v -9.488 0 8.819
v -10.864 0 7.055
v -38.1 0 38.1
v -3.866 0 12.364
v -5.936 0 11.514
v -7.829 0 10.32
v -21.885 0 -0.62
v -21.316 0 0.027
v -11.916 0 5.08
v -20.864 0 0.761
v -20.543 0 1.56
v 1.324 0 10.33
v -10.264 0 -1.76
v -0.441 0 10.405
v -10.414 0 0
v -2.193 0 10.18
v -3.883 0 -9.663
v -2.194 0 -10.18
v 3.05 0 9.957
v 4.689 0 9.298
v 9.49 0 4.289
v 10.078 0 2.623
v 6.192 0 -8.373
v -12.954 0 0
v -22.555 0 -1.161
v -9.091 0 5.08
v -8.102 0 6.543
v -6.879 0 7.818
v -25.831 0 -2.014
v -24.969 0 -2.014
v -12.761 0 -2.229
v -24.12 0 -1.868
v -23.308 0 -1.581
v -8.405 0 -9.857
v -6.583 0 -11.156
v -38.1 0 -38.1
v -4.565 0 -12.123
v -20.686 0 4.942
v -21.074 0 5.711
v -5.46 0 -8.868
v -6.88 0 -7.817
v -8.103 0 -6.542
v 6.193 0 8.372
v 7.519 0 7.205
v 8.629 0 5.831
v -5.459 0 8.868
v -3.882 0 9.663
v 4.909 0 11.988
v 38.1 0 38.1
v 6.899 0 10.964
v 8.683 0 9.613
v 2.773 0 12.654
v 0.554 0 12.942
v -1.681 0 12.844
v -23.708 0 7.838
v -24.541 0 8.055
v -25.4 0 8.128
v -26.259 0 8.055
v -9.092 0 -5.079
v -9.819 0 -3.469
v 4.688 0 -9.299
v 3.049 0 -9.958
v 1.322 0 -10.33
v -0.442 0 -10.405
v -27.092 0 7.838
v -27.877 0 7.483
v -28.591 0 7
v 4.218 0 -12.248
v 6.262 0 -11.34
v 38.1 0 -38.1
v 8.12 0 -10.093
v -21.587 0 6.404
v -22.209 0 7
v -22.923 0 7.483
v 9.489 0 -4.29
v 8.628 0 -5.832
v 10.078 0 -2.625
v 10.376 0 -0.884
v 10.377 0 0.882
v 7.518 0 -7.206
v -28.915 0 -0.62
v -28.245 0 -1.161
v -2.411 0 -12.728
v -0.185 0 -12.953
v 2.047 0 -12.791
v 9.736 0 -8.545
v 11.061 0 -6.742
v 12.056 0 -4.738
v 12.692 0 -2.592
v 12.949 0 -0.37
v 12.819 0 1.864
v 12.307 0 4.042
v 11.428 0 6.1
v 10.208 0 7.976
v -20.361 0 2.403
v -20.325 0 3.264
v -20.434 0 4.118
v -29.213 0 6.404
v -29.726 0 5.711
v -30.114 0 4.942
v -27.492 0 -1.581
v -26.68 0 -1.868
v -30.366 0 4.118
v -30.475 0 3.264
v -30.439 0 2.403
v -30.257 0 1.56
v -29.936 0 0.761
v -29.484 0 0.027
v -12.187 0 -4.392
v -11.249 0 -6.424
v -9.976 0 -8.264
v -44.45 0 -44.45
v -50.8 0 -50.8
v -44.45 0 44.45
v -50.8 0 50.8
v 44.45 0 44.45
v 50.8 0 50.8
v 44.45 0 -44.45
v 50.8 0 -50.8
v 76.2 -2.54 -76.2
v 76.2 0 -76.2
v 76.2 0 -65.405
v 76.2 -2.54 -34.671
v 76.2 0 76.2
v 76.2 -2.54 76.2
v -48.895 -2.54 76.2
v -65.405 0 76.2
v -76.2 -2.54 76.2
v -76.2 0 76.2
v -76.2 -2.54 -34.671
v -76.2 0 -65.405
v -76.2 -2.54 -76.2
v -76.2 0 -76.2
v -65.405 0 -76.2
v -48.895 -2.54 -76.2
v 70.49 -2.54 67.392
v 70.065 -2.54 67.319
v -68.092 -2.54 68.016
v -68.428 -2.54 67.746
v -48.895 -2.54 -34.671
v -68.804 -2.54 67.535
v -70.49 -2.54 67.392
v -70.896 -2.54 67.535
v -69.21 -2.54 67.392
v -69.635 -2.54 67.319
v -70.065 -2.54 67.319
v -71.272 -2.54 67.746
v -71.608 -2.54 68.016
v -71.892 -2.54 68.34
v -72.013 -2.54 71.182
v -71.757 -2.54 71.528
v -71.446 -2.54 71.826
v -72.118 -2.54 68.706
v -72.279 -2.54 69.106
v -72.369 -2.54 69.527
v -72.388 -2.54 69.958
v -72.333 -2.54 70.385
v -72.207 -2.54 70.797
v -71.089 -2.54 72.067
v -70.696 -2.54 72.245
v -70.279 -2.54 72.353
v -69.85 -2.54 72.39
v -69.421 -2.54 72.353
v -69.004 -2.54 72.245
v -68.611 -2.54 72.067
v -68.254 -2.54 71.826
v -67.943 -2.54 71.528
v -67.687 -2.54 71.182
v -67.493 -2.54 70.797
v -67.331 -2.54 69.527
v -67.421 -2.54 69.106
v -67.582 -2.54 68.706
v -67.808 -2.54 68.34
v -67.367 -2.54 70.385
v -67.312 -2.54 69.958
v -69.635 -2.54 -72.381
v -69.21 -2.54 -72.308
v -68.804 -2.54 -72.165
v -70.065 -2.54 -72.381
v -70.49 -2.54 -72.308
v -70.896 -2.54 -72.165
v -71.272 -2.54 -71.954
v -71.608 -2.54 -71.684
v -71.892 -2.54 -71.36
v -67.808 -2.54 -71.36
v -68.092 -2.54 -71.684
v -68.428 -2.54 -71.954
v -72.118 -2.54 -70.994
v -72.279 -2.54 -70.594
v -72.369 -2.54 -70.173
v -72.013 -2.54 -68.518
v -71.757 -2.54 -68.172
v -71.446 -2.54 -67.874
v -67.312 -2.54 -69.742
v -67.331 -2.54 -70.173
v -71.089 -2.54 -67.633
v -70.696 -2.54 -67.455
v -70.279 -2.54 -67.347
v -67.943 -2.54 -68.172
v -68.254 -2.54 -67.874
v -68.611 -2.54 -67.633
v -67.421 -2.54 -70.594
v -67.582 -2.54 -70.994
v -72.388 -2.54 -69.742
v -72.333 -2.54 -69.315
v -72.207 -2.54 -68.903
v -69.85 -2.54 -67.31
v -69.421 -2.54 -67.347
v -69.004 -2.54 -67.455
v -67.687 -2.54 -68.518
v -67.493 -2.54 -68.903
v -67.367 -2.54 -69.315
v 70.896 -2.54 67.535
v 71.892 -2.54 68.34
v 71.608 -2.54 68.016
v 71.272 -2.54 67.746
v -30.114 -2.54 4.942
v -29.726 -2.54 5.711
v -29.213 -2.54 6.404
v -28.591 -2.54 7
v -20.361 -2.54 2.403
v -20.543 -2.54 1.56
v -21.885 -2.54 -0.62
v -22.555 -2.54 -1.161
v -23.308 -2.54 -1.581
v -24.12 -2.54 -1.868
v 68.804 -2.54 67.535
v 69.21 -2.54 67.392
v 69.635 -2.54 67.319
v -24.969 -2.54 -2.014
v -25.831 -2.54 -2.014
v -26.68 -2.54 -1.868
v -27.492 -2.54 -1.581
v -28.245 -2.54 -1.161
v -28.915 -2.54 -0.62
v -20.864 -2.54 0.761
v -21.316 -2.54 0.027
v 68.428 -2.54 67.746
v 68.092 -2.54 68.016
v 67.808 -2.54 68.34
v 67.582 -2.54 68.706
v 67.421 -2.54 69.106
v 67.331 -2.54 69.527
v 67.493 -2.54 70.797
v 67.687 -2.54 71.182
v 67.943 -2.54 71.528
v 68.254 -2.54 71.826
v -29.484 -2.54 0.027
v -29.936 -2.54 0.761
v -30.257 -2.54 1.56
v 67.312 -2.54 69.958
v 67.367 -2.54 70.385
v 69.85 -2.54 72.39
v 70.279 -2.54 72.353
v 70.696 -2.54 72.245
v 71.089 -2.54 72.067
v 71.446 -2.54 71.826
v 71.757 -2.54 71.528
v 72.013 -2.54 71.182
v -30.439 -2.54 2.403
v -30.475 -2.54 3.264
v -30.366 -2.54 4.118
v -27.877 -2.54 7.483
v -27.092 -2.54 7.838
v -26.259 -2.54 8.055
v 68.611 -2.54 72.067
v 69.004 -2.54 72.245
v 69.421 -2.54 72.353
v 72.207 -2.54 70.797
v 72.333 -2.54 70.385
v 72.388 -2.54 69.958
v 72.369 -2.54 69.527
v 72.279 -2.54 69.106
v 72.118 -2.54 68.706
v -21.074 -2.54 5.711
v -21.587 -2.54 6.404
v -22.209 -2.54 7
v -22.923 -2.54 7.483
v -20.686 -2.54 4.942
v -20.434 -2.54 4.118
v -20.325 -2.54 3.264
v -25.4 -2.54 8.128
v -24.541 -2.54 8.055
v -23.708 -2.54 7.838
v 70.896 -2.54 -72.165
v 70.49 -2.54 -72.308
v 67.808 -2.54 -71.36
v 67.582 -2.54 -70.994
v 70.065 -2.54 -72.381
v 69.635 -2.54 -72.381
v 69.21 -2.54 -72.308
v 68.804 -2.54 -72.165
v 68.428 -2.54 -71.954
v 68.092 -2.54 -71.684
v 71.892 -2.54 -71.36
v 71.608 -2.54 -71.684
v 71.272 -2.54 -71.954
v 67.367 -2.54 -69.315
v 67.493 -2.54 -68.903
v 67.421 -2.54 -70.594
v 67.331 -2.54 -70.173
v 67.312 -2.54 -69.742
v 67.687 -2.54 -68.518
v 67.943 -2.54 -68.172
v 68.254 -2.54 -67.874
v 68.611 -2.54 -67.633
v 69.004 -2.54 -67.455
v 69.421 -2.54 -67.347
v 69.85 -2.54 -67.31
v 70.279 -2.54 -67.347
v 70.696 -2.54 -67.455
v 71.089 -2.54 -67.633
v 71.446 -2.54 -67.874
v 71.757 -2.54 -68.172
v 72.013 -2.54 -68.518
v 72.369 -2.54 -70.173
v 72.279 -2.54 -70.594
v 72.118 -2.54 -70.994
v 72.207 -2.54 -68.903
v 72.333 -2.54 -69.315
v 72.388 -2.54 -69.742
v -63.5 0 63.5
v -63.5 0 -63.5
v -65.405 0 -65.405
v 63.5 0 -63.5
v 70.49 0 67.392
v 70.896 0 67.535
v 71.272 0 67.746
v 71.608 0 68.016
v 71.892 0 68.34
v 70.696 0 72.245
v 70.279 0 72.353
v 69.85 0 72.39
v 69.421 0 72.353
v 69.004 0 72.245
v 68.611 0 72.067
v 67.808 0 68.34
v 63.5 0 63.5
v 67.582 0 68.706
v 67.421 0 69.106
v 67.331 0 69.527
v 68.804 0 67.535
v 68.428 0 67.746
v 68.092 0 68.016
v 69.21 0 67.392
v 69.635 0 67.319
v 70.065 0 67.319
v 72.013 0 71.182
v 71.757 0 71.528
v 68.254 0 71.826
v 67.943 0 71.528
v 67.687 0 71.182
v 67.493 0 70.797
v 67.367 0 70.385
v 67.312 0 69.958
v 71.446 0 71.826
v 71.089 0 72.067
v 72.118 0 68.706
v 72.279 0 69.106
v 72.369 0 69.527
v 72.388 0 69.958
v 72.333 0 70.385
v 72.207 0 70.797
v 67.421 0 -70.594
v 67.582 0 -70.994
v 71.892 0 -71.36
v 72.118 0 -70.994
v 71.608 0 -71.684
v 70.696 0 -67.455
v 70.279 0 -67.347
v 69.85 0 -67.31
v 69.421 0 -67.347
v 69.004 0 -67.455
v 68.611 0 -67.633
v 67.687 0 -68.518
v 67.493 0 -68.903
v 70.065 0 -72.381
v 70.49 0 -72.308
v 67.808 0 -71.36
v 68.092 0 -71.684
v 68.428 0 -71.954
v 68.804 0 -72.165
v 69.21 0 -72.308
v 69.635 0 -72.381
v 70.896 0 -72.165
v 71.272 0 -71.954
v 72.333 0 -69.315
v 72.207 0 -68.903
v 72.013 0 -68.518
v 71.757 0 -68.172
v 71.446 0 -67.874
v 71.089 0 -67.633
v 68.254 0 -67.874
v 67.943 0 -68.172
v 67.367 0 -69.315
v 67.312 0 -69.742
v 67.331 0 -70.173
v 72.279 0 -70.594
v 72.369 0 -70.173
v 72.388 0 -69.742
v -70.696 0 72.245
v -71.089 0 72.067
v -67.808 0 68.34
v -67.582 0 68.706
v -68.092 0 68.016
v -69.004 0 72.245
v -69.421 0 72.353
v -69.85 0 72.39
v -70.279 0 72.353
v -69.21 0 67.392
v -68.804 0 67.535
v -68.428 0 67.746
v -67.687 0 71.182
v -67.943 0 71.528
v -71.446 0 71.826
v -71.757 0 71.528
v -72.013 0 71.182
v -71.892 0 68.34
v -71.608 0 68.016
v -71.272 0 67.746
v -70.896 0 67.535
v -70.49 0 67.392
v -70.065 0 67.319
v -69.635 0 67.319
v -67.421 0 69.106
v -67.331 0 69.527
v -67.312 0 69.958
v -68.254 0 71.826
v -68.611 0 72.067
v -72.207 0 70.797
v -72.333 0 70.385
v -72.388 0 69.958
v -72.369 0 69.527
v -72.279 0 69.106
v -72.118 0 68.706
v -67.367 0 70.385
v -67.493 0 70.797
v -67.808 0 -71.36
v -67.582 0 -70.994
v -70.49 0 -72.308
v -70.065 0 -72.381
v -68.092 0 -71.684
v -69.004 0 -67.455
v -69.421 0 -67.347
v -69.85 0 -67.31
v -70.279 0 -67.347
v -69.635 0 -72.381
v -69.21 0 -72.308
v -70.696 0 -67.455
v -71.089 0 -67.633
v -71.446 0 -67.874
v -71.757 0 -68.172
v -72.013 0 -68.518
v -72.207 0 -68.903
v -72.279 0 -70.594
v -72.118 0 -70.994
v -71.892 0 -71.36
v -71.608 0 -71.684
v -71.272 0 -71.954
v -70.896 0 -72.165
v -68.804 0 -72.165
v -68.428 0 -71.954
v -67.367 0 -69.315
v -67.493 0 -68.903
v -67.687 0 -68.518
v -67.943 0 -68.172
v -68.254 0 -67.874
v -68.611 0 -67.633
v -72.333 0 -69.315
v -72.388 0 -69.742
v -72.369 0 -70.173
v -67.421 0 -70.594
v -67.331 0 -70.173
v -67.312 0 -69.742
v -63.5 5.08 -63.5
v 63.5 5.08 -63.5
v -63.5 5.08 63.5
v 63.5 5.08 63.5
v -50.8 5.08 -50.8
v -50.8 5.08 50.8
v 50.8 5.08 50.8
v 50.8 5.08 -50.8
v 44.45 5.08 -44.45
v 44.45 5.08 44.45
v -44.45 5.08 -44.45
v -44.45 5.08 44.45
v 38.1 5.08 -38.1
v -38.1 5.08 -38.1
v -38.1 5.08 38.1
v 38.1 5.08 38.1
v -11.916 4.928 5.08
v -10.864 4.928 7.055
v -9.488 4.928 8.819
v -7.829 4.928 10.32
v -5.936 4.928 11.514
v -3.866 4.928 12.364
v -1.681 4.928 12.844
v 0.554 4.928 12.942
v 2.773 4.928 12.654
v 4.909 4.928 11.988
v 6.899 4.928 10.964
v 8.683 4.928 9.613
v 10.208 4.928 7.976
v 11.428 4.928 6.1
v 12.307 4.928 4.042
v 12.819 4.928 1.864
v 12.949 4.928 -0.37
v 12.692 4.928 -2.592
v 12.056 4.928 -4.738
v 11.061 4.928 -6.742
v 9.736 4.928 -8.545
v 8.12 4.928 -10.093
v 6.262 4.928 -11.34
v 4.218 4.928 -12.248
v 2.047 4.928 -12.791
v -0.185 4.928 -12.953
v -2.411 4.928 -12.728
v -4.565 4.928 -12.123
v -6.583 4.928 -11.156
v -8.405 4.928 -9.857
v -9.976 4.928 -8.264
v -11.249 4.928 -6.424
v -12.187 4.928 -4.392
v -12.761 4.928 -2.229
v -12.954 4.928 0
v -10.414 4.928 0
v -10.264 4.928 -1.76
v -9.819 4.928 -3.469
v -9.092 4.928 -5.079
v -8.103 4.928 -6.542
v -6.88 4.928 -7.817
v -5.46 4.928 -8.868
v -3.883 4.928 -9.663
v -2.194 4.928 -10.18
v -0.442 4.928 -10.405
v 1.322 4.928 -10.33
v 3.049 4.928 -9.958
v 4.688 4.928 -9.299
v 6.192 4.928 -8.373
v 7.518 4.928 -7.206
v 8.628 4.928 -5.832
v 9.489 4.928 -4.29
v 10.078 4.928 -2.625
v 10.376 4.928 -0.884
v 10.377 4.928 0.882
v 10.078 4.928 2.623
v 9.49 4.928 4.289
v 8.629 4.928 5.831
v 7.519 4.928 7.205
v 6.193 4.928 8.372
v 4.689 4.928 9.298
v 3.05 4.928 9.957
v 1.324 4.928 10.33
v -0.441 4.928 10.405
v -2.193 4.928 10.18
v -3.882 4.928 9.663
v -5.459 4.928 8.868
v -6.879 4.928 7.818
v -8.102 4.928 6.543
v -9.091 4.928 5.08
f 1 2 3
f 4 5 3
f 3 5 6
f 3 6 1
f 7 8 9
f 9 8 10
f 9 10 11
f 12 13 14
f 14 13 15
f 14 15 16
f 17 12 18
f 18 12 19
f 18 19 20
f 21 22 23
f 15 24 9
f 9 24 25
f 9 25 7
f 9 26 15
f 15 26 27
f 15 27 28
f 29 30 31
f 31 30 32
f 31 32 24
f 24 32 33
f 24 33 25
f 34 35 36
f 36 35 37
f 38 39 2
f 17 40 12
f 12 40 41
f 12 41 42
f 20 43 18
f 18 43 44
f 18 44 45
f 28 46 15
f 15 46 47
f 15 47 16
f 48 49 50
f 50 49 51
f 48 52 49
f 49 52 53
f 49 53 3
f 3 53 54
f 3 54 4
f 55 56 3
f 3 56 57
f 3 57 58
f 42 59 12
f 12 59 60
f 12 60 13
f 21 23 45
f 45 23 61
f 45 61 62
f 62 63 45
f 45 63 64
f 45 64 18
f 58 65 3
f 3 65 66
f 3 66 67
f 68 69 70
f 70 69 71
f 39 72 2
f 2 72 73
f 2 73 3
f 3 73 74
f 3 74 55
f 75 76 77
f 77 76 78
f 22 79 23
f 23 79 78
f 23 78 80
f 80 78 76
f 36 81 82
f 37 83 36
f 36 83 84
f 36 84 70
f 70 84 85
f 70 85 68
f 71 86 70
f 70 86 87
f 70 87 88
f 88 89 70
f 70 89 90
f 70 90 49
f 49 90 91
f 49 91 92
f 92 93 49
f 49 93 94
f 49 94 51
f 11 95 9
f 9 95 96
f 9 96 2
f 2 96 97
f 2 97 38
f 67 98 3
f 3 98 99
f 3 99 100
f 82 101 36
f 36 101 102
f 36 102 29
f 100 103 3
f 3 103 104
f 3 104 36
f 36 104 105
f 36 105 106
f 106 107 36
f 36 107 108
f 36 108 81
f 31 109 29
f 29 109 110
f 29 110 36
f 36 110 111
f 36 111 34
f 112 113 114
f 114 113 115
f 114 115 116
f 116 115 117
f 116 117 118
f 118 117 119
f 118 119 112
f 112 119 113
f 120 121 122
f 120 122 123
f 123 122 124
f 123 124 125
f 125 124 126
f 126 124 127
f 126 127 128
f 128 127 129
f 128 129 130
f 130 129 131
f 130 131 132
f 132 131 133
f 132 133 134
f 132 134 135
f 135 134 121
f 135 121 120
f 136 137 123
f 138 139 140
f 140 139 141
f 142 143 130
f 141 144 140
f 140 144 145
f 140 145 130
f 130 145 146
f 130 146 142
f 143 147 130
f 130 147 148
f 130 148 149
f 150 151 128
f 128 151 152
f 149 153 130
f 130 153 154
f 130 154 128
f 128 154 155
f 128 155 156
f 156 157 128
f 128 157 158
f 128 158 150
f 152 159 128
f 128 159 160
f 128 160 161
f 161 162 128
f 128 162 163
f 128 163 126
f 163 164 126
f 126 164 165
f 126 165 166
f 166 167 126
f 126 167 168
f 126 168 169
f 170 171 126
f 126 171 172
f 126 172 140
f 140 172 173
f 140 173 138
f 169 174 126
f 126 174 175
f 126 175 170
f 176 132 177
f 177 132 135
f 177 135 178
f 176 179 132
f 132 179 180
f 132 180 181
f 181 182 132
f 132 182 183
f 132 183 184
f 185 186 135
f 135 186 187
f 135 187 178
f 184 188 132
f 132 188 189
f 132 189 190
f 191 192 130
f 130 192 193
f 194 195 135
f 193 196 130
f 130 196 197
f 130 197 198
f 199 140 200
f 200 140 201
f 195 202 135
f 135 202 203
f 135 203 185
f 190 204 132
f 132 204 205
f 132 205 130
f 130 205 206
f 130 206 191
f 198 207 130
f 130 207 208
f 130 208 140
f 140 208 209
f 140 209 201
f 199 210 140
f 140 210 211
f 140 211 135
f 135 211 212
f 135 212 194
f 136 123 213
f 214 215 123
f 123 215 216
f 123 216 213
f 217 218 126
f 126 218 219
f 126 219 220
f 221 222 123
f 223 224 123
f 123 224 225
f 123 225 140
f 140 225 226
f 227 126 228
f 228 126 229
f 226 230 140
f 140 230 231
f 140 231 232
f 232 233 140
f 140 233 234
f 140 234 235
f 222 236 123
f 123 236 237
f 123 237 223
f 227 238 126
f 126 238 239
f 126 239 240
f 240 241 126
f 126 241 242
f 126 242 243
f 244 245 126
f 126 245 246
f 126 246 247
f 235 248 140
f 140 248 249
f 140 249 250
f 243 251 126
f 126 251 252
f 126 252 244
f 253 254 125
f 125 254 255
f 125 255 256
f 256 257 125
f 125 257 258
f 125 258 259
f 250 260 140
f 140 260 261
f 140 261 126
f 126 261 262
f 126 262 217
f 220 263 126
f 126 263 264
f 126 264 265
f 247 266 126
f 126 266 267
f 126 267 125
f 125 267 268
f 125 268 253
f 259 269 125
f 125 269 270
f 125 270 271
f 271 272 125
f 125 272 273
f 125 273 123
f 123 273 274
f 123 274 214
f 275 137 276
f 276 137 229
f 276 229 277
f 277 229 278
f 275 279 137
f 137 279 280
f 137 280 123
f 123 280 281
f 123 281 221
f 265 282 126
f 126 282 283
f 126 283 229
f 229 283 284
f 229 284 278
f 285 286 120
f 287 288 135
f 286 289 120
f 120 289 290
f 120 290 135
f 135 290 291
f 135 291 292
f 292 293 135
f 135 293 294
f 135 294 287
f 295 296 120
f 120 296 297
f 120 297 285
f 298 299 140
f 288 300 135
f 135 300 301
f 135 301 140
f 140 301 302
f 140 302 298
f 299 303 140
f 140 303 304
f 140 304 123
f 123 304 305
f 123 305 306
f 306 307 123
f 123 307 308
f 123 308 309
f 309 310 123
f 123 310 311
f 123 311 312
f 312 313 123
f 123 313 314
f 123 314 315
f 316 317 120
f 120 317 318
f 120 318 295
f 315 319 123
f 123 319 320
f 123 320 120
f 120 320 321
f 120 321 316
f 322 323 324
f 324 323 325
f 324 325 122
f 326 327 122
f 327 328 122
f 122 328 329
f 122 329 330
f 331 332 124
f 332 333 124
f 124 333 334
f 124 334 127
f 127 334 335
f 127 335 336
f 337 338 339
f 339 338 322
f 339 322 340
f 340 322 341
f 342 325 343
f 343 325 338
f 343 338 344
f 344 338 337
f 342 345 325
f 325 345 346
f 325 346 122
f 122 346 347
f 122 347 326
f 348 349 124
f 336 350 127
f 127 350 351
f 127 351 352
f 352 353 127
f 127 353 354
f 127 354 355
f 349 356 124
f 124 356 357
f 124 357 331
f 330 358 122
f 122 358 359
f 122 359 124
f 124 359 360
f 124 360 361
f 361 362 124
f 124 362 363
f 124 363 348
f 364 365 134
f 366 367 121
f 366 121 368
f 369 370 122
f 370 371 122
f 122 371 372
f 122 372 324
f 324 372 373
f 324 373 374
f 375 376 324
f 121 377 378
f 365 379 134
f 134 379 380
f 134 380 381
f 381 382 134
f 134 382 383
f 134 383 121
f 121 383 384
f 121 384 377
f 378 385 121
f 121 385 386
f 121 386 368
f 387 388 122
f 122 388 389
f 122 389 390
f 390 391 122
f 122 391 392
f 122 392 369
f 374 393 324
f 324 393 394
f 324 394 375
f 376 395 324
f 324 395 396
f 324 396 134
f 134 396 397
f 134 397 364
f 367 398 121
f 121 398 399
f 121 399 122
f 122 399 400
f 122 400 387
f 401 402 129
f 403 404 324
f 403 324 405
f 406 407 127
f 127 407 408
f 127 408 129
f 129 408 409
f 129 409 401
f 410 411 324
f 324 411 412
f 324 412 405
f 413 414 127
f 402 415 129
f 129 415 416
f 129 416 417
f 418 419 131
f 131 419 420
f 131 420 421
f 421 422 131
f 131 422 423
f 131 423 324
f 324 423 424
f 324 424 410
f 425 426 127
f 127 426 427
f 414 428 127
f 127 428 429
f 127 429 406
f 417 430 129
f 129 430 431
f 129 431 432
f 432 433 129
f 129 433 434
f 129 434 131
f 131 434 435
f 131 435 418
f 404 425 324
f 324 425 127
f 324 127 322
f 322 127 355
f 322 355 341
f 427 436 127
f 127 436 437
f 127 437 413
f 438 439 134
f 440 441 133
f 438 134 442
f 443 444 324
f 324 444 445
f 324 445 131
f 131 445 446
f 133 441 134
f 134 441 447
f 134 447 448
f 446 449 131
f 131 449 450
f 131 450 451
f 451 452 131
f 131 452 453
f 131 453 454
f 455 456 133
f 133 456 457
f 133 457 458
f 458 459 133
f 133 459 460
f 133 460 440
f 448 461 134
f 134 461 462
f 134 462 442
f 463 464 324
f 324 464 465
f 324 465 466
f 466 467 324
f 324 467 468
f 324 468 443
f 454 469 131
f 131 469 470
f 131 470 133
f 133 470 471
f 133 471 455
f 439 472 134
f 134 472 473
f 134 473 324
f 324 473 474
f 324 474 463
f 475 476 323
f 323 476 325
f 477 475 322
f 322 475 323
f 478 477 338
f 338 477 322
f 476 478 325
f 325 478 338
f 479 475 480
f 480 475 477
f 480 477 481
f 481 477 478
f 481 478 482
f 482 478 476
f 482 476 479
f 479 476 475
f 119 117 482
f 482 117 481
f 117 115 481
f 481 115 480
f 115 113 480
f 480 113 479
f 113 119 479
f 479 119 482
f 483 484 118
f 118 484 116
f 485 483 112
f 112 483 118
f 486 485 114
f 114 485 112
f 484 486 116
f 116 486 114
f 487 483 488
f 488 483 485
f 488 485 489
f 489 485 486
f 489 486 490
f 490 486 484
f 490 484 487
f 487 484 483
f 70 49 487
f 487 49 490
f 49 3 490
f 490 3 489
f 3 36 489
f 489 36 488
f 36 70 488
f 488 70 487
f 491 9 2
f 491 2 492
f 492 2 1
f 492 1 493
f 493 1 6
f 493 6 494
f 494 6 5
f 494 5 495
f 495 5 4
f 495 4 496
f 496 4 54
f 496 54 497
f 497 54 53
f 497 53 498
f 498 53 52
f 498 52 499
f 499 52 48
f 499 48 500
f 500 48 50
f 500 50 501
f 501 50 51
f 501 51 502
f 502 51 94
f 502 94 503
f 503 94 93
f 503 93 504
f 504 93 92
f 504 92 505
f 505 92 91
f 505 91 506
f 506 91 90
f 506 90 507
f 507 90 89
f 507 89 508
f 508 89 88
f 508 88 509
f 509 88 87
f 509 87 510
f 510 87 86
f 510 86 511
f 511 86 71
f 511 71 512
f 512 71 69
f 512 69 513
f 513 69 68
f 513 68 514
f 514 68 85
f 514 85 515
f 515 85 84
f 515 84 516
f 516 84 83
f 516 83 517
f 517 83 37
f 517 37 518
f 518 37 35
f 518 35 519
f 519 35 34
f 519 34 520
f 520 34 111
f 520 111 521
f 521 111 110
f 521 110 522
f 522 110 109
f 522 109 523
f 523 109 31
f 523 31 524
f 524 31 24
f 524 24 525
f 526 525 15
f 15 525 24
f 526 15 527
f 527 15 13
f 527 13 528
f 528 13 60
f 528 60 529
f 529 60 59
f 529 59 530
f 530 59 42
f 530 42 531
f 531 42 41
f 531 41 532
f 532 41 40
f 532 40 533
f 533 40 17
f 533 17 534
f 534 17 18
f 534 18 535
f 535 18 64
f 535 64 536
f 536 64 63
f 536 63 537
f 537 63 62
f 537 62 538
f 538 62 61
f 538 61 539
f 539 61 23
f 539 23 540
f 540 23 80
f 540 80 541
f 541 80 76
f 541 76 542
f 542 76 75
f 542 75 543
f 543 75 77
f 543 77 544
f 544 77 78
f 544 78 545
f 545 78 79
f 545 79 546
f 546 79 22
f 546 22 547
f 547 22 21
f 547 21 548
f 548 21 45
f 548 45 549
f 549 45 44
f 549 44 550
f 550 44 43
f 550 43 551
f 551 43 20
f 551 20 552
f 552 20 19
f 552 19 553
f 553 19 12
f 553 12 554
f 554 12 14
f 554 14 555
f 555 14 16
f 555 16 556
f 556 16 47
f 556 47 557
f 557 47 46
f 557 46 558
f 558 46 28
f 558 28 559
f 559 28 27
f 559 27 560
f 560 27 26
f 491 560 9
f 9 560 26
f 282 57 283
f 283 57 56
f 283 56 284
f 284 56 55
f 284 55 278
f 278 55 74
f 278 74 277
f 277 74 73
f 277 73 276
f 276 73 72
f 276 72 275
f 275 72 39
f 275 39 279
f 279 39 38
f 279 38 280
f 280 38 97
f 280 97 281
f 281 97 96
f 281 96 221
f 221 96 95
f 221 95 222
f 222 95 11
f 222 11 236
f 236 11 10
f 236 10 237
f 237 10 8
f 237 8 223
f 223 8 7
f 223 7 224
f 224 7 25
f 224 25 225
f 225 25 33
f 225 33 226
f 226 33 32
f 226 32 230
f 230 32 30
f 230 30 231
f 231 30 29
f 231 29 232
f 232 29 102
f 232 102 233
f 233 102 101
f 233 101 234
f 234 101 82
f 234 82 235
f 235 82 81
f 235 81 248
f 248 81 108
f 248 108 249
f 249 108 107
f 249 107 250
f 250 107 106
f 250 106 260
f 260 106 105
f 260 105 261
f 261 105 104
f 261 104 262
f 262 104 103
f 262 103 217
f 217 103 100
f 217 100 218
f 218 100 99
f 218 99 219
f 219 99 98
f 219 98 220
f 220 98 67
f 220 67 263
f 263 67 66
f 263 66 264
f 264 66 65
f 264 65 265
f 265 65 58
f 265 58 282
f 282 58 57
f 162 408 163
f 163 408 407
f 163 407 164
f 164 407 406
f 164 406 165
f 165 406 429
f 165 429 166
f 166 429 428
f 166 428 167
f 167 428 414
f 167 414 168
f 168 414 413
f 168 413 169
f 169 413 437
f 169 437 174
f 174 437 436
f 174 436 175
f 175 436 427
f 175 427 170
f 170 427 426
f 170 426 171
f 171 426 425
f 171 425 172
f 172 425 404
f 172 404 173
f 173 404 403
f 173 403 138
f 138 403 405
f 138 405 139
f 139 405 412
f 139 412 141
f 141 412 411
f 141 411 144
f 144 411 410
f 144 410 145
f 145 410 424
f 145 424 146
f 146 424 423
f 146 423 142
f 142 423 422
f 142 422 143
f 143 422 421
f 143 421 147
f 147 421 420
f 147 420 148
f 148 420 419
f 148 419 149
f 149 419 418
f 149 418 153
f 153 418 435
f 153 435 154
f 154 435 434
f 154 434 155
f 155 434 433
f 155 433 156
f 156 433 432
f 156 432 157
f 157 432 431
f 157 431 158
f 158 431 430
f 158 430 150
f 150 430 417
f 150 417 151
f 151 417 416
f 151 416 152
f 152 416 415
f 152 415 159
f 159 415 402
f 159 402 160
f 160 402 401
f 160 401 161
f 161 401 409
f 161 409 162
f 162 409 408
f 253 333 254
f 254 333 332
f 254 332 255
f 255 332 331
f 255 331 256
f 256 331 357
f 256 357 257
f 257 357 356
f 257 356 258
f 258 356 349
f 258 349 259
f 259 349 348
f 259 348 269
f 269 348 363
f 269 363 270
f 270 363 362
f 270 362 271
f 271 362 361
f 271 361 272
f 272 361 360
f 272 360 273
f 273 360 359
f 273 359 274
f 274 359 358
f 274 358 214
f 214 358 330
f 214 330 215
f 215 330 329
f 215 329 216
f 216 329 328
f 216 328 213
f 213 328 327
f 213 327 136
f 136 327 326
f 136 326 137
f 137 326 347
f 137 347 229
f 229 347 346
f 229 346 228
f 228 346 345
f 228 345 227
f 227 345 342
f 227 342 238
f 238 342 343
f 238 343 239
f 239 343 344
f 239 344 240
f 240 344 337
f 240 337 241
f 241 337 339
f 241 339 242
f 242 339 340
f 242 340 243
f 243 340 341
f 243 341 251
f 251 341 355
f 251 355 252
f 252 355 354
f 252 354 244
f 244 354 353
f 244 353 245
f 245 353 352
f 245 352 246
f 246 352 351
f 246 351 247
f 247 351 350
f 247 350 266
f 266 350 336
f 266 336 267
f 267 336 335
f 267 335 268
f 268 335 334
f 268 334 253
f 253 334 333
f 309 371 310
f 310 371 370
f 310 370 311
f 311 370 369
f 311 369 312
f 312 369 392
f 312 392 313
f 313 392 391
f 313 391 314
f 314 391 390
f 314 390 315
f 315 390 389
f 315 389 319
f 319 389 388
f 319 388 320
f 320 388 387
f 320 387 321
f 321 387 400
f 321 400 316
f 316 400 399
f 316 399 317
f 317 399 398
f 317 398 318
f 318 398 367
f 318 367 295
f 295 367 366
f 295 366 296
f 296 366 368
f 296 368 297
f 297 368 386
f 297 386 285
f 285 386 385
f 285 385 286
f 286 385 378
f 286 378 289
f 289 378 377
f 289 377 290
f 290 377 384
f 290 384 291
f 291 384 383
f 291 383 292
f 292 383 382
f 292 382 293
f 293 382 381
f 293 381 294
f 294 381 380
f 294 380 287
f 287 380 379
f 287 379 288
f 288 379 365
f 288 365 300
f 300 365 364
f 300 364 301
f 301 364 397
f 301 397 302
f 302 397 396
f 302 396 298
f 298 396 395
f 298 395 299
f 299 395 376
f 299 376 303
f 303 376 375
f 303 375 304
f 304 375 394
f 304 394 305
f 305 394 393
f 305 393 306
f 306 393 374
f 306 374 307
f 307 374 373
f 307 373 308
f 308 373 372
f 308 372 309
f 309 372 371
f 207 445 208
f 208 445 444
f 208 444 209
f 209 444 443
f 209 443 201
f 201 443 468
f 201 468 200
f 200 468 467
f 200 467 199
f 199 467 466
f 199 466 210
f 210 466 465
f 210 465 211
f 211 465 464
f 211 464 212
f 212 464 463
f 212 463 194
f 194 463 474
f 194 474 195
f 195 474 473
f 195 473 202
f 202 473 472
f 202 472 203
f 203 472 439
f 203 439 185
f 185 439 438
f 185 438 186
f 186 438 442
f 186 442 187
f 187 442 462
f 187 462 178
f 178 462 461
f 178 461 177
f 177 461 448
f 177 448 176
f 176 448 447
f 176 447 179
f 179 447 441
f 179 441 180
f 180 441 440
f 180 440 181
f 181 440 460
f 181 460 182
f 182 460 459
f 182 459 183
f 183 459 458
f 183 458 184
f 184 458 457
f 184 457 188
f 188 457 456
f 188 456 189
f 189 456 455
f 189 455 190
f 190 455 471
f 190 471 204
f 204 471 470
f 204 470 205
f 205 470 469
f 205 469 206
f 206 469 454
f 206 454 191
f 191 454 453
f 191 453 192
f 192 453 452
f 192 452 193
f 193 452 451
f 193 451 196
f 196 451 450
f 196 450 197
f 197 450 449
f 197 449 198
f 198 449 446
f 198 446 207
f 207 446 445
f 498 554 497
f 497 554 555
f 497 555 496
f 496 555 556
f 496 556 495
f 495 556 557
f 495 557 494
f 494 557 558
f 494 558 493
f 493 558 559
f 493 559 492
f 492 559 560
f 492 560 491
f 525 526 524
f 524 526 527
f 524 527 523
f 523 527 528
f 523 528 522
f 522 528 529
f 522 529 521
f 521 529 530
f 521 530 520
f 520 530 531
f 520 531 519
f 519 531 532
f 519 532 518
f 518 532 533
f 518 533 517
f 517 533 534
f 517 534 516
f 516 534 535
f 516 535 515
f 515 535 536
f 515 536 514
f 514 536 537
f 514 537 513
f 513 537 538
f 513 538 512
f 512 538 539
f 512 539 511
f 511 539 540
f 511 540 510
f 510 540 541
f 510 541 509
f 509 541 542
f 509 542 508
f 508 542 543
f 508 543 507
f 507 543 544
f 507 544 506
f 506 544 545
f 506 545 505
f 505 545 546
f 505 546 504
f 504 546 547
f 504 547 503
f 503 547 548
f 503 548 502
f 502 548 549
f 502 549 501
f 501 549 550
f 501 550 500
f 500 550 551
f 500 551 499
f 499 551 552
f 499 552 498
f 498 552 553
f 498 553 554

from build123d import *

# Parameters (mm, degrees)
SKETCH1_W           = 152.4
SKETCH1_H           = 152.4
BOSS_EXTRUDE1_DEPTH = 2.54
SKETCH2_W           = 127
SKETCH2_H           = 127
BOSS_EXTRUDE3_DEPTH = 5.08
SKETCH3_W           = 101.6
SKETCH3_H           = 101.6
CUT_EXTRUDE2_DEPTH  = 5.08
SKETCH5_W           = 88.9
SKETCH5_H           = 88.9
BOSS_EXTRUDE4_DEPTH = 5.08
SKETCH6_W           = 76.2
SKETCH6_H           = 76.2
CUT_EXTRUDE3_DEPTH  = 5.08
BOSS_EXTRUDE5_DEPTH = 2.794
SKETCH8_R           = 5.08
CUT_EXTRUDE4_DEPTH  = 3.54
SKETCH9_R           = 2.54
CUT_EXTRUDE5_DEPTH  = 3.54
BOSS_EXTRUDE6_DEPTH = 4.9276


with BuildPart() as part:
    # Sketch1 → Boss-Extrude1 (new body)
    with BuildSketch(Plane(origin=(0, 0, 0), x_dir=(1, 0, 0), z_dir=(0, 1, 0))):
        Rectangle(SKETCH1_W, SKETCH1_H)
    extrude(amount=-BOSS_EXTRUDE1_DEPTH)

    # Sketch2 → Boss-Extrude3 (add)
    with BuildSketch(Plane(origin=(0, 0, 0), x_dir=(1, 0, 0), z_dir=(0, 1, 0))):
        Rectangle(SKETCH2_W, SKETCH2_H)
    extrude(amount=BOSS_EXTRUDE3_DEPTH)

    # Sketch3 → Cut-Extrude2 (cut)
    with BuildSketch(Plane(origin=(0, 5.08, 0), x_dir=(1, 0, 0), z_dir=(0, 1, 0))):
        Rectangle(SKETCH3_W, SKETCH3_H)
    extrude(amount=-CUT_EXTRUDE2_DEPTH, mode=Mode.SUBTRACT)

    # Sketch5 → Boss-Extrude4 (add)
    with BuildSketch(Plane(origin=(0, 0, 0), x_dir=(1, 0, 0), z_dir=(0, 1, 0))):
        Rectangle(SKETCH5_W, SKETCH5_H)
    extrude(amount=BOSS_EXTRUDE4_DEPTH)

    # Sketch6 → Cut-Extrude3 (cut)
    with BuildSketch(Plane(origin=(0, 5.08, 0), x_dir=(1, 0, 0), z_dir=(0, 1, 0))):
        Rectangle(SKETCH6_W, SKETCH6_H)
    extrude(amount=-CUT_EXTRUDE3_DEPTH, mode=Mode.SUBTRACT)

    # Sketch7 → Boss-Extrude5 (add)
    with BuildSketch(Plane(origin=(0, 0, 0), x_dir=(1, 0, 0), z_dir=(0, 1, 0))):
        with BuildLine():
            Line((-10.414, 0), (-12.954, 0))
            ThreePointArc((-12.954, 0), (12.691940102, 2.592445263), (-11.916363371, -5.08))
            Line((-11.916363371, -5.08), (-9.090929325, -5.08))
            ThreePointArc((-9.090929325, -5.08), (10.077805664, 2.624734082), (-10.414, 0))
        make_face()
    extrude(amount=BOSS_EXTRUDE5_DEPTH)

    # Sketch8 → Cut-Extrude4 (cut, through all)
    with BuildSketch(Plane(origin=(0, 0, 0), x_dir=(1, 0, 0), z_dir=(0, 1, 0))):
        with Locations((-25.4, -3.048)):
            Circle(SKETCH8_R)
    extrude(amount=-CUT_EXTRUDE4_DEPTH, mode=Mode.SUBTRACT)

    # Sketch9 → Cut-Extrude5 (cut, through all)
    with BuildSketch(Plane(origin=(0, 0, 0), x_dir=(1, 0, 0), z_dir=(0, 1, 0))):
        with Locations((-69.85, -69.85)):
            Circle(SKETCH9_R)
        with Locations((69.85, -69.85)):
            Circle(SKETCH9_R)
        with Locations((69.85, 69.85)):
            Circle(SKETCH9_R)
        with Locations((-69.85, 69.85)):
            Circle(SKETCH9_R)
    extrude(amount=-CUT_EXTRUDE5_DEPTH, mode=Mode.SUBTRACT)

    # Sketch7<2> → Boss-Extrude6 (add)
    with BuildSketch(Plane(origin=(0, 0, 0), x_dir=(1, 0, 0), z_dir=(0, 1, 0))):
        with BuildLine():
            Line((-10.414, 0), (-12.954, 0))
            ThreePointArc((-12.954, 0), (12.691940102, 2.592445263), (-11.916363371, -5.08))
            Line((-11.916363371, -5.08), (-9.090929325, -5.08))
            ThreePointArc((-9.090929325, -5.08), (10.077805664, 2.624734082), (-10.414, 0))
        make_face()
    extrude(amount=BOSS_EXTRUDE6_DEPTH)


solid = part.part
